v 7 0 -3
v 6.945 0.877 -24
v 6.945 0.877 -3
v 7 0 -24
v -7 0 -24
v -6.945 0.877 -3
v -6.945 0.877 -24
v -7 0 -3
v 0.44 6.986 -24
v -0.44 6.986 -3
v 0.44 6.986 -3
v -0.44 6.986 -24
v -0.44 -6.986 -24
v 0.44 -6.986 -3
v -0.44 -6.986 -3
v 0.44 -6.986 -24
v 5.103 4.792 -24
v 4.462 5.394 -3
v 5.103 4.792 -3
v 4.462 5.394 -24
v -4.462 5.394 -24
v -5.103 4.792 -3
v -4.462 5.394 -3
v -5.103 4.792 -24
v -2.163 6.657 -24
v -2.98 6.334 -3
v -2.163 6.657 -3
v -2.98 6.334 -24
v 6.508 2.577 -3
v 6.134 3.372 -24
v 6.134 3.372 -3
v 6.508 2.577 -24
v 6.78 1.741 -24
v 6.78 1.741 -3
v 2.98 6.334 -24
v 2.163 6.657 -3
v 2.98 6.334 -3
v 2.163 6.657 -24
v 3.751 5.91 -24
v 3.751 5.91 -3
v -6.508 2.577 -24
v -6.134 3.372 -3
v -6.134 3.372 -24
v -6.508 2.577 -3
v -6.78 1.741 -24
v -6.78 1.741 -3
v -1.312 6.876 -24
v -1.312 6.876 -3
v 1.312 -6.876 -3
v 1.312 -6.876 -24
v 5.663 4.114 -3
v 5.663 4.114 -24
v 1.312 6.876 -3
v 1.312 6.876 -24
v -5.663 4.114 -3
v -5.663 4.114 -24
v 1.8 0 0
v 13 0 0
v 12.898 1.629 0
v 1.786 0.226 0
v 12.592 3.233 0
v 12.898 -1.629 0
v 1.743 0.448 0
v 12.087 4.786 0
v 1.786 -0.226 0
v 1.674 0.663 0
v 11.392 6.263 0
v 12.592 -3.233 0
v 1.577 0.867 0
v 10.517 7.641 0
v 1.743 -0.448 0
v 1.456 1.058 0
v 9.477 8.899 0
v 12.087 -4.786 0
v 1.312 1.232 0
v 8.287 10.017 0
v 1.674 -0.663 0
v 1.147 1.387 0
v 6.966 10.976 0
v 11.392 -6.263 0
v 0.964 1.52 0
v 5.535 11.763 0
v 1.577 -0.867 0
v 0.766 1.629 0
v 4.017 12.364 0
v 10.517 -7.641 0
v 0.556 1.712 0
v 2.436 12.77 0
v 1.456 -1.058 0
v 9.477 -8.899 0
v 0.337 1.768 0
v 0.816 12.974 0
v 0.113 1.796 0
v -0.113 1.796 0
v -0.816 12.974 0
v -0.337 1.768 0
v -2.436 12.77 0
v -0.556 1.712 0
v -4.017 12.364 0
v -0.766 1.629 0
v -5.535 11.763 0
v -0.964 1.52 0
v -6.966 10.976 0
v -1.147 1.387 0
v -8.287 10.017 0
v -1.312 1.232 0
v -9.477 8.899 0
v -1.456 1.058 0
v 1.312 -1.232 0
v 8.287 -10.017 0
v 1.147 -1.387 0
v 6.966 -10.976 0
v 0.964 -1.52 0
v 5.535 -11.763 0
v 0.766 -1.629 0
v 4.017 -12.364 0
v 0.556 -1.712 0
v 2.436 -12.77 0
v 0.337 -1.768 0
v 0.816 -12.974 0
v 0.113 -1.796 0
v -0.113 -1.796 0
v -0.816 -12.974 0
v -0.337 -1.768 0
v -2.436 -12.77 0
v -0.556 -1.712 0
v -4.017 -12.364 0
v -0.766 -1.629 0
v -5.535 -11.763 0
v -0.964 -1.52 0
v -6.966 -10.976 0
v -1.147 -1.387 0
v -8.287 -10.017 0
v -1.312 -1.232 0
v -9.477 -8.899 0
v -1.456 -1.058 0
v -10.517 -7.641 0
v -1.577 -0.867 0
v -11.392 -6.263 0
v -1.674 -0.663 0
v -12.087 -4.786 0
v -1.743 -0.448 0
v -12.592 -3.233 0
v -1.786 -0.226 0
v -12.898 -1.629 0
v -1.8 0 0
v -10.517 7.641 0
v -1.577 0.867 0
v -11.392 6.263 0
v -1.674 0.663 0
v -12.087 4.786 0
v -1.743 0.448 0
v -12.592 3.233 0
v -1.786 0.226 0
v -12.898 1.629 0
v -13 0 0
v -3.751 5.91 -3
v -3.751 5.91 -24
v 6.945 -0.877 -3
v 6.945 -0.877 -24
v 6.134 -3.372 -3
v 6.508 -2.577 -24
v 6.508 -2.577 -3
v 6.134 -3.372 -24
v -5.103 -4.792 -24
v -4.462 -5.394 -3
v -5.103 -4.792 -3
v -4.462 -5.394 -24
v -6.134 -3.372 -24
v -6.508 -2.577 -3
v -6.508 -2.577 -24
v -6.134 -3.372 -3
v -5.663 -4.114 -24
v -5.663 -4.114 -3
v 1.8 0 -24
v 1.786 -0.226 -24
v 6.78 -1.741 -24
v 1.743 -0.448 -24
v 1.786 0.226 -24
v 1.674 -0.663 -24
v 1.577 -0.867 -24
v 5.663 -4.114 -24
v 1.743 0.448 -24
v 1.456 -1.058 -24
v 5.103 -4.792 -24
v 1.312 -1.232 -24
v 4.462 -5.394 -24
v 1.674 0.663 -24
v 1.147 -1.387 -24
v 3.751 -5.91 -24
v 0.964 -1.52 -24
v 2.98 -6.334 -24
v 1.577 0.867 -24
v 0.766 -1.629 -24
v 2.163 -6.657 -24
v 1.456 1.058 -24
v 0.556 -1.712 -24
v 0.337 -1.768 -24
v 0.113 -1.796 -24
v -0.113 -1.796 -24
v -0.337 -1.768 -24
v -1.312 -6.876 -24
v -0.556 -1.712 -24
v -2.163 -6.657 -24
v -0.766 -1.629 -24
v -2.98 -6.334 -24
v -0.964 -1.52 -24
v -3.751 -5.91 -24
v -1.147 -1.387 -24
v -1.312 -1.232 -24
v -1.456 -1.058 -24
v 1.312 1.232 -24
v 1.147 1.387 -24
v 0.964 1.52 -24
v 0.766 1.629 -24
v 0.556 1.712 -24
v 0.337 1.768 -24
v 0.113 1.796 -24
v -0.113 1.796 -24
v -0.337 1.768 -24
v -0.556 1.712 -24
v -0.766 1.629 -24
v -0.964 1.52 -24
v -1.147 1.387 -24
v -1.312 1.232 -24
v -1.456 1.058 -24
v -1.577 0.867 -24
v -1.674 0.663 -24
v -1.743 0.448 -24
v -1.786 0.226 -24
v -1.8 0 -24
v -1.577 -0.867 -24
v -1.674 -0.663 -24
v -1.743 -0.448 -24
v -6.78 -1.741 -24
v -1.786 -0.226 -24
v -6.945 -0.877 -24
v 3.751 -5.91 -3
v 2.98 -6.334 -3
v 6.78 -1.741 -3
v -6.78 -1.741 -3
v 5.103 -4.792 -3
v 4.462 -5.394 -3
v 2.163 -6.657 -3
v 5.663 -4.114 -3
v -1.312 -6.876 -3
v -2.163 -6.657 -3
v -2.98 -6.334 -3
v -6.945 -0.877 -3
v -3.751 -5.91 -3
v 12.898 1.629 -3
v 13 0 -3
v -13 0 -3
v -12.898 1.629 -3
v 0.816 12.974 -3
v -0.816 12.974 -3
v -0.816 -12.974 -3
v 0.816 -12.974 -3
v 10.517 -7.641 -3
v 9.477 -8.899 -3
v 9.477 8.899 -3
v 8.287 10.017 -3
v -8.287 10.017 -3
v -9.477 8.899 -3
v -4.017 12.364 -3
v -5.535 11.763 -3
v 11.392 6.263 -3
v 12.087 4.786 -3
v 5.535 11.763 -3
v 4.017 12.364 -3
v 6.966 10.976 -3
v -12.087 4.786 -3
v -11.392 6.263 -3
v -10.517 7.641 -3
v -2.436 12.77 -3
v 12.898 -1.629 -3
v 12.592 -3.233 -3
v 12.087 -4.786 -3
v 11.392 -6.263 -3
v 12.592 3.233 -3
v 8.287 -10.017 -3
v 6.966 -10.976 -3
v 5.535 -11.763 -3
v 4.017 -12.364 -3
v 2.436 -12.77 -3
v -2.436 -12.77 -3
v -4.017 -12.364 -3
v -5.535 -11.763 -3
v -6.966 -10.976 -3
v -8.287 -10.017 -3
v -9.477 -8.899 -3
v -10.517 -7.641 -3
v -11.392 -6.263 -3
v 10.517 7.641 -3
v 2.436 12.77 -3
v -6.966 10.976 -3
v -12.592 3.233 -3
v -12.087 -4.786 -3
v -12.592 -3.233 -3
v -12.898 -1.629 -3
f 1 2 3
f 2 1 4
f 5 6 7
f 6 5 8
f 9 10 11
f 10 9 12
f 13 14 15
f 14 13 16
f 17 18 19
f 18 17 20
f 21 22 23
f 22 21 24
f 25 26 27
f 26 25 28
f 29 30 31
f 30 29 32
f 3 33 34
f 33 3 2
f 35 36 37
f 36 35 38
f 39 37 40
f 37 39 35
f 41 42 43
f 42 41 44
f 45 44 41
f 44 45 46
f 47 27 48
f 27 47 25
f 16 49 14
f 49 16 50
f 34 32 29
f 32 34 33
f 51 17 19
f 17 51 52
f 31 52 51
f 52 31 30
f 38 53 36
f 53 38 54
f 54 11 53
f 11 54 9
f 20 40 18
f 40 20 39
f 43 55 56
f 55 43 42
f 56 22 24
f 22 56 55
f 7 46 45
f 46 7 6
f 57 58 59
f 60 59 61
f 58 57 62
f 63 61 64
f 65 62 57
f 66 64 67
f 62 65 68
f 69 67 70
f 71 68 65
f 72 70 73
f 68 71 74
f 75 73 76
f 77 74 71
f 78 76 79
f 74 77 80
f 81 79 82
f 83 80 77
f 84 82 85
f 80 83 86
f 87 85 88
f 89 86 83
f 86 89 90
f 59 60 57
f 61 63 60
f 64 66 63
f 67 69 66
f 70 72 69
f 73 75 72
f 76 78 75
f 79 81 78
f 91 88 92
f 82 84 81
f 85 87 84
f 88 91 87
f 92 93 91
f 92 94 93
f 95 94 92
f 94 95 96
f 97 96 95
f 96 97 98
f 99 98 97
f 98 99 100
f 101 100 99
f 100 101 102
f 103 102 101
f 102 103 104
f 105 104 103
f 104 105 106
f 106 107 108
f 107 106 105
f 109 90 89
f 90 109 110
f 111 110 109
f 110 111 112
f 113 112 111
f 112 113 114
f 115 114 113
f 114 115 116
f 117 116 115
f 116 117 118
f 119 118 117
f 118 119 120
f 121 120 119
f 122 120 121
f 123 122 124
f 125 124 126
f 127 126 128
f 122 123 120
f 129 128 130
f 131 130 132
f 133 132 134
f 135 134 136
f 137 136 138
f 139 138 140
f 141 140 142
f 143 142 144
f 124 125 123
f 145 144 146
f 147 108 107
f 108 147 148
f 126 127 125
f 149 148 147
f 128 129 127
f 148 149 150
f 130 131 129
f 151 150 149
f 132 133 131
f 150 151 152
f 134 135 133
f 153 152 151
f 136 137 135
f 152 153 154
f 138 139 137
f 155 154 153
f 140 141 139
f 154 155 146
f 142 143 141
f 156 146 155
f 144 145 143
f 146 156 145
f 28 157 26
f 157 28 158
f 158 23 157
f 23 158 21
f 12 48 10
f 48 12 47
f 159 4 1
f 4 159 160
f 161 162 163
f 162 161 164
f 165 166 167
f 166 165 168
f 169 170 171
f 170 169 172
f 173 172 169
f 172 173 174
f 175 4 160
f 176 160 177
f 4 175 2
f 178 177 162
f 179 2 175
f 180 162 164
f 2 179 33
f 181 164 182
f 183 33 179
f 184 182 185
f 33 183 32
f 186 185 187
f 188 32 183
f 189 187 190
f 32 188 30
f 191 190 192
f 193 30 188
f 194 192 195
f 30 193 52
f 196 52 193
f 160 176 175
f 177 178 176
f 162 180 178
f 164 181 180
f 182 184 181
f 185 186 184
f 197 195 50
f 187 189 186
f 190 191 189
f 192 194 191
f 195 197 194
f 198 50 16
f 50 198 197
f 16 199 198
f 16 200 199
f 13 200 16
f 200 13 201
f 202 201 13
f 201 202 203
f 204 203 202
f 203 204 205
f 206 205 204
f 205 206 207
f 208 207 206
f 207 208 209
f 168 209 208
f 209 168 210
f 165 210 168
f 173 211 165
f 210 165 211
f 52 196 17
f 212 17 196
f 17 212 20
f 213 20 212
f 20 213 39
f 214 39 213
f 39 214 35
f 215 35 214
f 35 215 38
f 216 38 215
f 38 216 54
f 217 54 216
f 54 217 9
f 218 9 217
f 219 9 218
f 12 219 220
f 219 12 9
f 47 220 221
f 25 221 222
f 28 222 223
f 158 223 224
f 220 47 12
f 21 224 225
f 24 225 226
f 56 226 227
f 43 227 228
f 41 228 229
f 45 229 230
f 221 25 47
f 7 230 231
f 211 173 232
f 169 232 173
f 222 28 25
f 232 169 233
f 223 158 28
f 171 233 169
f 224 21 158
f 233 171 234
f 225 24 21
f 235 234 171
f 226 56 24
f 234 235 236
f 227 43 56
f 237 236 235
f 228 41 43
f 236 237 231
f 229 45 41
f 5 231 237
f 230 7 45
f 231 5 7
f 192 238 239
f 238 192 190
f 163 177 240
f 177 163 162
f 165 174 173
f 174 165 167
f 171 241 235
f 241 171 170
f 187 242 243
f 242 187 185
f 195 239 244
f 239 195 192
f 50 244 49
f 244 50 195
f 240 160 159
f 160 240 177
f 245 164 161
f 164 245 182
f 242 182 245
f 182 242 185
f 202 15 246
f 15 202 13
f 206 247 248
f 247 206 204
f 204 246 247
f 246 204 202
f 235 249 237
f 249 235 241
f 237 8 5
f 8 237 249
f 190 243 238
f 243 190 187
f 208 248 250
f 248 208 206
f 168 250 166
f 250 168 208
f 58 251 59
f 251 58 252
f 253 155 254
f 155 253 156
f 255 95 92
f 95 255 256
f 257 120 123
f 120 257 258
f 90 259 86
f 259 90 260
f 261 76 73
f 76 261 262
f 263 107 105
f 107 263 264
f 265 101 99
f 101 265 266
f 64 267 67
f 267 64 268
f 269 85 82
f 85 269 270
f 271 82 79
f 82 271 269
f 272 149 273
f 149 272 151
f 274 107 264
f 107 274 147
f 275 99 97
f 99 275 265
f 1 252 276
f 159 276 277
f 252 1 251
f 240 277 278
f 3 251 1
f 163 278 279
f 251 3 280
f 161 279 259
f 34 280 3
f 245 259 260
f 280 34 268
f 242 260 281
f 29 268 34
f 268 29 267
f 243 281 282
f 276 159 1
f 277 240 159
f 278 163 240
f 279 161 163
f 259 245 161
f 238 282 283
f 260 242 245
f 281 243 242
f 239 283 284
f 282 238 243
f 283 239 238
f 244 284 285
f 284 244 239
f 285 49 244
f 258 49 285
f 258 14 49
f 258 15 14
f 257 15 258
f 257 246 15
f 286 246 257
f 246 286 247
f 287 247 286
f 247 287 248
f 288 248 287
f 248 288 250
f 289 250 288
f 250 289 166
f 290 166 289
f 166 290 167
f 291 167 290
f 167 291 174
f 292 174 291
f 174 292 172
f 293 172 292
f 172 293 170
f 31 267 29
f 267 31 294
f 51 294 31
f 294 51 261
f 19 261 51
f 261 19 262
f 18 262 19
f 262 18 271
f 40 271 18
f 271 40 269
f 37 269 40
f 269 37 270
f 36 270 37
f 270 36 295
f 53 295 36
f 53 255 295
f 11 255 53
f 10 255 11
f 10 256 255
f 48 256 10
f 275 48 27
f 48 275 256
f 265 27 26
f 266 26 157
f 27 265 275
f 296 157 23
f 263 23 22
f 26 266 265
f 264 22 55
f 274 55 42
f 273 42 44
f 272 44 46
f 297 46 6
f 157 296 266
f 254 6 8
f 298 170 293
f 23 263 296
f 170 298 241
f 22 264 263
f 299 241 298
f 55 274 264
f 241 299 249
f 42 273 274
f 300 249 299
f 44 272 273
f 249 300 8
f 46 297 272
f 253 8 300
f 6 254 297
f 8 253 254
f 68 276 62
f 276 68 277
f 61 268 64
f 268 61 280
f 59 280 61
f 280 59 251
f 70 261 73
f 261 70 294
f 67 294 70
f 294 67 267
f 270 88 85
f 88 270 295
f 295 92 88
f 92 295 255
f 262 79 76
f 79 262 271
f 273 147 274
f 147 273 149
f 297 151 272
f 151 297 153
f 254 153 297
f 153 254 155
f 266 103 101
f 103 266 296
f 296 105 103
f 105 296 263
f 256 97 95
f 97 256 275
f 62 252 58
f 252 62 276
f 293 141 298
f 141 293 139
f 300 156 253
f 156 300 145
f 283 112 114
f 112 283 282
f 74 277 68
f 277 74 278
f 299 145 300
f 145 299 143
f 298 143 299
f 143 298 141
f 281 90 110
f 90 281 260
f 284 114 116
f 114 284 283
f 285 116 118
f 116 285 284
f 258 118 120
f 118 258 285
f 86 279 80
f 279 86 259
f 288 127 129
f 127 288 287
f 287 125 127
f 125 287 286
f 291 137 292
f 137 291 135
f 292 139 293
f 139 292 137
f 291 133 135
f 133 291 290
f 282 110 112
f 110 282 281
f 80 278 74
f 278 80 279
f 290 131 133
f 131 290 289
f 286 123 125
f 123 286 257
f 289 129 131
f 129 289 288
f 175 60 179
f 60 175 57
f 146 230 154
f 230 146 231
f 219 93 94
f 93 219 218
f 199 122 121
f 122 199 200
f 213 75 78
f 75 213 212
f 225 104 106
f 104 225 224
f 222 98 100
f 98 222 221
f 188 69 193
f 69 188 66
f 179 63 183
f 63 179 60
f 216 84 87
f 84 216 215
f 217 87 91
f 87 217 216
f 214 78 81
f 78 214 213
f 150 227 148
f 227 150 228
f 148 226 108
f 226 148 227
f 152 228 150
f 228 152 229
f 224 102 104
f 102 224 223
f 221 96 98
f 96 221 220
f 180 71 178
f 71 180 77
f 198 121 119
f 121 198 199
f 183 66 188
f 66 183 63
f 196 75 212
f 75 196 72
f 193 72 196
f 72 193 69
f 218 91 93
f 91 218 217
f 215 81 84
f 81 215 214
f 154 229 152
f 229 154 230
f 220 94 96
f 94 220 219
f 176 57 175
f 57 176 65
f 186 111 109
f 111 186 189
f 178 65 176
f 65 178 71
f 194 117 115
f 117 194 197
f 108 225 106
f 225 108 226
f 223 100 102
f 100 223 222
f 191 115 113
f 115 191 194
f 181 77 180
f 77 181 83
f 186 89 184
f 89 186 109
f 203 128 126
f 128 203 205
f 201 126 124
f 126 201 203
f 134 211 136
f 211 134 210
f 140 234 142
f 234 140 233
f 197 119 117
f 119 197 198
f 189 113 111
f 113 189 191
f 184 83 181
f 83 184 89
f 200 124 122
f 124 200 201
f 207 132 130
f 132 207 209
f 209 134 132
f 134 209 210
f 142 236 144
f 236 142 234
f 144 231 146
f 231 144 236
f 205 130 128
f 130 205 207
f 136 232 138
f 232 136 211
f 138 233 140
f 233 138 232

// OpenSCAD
$fn = 50;


difference() {
	union() {
		translate(v = [0, 0, -24.0000000000]) {
			cylinder(h = 24, r = 7.0000000000);
		}
		translate(v = [0, 0, -3.0000000000]) {
			cylinder(h = 3, r = 13.0000000000);
		}
	}
	union() {
		#translate(v = [0, 0, -24]) {
			cylinder(h = 24, r = 1.8000000000);
		}
	}
}
